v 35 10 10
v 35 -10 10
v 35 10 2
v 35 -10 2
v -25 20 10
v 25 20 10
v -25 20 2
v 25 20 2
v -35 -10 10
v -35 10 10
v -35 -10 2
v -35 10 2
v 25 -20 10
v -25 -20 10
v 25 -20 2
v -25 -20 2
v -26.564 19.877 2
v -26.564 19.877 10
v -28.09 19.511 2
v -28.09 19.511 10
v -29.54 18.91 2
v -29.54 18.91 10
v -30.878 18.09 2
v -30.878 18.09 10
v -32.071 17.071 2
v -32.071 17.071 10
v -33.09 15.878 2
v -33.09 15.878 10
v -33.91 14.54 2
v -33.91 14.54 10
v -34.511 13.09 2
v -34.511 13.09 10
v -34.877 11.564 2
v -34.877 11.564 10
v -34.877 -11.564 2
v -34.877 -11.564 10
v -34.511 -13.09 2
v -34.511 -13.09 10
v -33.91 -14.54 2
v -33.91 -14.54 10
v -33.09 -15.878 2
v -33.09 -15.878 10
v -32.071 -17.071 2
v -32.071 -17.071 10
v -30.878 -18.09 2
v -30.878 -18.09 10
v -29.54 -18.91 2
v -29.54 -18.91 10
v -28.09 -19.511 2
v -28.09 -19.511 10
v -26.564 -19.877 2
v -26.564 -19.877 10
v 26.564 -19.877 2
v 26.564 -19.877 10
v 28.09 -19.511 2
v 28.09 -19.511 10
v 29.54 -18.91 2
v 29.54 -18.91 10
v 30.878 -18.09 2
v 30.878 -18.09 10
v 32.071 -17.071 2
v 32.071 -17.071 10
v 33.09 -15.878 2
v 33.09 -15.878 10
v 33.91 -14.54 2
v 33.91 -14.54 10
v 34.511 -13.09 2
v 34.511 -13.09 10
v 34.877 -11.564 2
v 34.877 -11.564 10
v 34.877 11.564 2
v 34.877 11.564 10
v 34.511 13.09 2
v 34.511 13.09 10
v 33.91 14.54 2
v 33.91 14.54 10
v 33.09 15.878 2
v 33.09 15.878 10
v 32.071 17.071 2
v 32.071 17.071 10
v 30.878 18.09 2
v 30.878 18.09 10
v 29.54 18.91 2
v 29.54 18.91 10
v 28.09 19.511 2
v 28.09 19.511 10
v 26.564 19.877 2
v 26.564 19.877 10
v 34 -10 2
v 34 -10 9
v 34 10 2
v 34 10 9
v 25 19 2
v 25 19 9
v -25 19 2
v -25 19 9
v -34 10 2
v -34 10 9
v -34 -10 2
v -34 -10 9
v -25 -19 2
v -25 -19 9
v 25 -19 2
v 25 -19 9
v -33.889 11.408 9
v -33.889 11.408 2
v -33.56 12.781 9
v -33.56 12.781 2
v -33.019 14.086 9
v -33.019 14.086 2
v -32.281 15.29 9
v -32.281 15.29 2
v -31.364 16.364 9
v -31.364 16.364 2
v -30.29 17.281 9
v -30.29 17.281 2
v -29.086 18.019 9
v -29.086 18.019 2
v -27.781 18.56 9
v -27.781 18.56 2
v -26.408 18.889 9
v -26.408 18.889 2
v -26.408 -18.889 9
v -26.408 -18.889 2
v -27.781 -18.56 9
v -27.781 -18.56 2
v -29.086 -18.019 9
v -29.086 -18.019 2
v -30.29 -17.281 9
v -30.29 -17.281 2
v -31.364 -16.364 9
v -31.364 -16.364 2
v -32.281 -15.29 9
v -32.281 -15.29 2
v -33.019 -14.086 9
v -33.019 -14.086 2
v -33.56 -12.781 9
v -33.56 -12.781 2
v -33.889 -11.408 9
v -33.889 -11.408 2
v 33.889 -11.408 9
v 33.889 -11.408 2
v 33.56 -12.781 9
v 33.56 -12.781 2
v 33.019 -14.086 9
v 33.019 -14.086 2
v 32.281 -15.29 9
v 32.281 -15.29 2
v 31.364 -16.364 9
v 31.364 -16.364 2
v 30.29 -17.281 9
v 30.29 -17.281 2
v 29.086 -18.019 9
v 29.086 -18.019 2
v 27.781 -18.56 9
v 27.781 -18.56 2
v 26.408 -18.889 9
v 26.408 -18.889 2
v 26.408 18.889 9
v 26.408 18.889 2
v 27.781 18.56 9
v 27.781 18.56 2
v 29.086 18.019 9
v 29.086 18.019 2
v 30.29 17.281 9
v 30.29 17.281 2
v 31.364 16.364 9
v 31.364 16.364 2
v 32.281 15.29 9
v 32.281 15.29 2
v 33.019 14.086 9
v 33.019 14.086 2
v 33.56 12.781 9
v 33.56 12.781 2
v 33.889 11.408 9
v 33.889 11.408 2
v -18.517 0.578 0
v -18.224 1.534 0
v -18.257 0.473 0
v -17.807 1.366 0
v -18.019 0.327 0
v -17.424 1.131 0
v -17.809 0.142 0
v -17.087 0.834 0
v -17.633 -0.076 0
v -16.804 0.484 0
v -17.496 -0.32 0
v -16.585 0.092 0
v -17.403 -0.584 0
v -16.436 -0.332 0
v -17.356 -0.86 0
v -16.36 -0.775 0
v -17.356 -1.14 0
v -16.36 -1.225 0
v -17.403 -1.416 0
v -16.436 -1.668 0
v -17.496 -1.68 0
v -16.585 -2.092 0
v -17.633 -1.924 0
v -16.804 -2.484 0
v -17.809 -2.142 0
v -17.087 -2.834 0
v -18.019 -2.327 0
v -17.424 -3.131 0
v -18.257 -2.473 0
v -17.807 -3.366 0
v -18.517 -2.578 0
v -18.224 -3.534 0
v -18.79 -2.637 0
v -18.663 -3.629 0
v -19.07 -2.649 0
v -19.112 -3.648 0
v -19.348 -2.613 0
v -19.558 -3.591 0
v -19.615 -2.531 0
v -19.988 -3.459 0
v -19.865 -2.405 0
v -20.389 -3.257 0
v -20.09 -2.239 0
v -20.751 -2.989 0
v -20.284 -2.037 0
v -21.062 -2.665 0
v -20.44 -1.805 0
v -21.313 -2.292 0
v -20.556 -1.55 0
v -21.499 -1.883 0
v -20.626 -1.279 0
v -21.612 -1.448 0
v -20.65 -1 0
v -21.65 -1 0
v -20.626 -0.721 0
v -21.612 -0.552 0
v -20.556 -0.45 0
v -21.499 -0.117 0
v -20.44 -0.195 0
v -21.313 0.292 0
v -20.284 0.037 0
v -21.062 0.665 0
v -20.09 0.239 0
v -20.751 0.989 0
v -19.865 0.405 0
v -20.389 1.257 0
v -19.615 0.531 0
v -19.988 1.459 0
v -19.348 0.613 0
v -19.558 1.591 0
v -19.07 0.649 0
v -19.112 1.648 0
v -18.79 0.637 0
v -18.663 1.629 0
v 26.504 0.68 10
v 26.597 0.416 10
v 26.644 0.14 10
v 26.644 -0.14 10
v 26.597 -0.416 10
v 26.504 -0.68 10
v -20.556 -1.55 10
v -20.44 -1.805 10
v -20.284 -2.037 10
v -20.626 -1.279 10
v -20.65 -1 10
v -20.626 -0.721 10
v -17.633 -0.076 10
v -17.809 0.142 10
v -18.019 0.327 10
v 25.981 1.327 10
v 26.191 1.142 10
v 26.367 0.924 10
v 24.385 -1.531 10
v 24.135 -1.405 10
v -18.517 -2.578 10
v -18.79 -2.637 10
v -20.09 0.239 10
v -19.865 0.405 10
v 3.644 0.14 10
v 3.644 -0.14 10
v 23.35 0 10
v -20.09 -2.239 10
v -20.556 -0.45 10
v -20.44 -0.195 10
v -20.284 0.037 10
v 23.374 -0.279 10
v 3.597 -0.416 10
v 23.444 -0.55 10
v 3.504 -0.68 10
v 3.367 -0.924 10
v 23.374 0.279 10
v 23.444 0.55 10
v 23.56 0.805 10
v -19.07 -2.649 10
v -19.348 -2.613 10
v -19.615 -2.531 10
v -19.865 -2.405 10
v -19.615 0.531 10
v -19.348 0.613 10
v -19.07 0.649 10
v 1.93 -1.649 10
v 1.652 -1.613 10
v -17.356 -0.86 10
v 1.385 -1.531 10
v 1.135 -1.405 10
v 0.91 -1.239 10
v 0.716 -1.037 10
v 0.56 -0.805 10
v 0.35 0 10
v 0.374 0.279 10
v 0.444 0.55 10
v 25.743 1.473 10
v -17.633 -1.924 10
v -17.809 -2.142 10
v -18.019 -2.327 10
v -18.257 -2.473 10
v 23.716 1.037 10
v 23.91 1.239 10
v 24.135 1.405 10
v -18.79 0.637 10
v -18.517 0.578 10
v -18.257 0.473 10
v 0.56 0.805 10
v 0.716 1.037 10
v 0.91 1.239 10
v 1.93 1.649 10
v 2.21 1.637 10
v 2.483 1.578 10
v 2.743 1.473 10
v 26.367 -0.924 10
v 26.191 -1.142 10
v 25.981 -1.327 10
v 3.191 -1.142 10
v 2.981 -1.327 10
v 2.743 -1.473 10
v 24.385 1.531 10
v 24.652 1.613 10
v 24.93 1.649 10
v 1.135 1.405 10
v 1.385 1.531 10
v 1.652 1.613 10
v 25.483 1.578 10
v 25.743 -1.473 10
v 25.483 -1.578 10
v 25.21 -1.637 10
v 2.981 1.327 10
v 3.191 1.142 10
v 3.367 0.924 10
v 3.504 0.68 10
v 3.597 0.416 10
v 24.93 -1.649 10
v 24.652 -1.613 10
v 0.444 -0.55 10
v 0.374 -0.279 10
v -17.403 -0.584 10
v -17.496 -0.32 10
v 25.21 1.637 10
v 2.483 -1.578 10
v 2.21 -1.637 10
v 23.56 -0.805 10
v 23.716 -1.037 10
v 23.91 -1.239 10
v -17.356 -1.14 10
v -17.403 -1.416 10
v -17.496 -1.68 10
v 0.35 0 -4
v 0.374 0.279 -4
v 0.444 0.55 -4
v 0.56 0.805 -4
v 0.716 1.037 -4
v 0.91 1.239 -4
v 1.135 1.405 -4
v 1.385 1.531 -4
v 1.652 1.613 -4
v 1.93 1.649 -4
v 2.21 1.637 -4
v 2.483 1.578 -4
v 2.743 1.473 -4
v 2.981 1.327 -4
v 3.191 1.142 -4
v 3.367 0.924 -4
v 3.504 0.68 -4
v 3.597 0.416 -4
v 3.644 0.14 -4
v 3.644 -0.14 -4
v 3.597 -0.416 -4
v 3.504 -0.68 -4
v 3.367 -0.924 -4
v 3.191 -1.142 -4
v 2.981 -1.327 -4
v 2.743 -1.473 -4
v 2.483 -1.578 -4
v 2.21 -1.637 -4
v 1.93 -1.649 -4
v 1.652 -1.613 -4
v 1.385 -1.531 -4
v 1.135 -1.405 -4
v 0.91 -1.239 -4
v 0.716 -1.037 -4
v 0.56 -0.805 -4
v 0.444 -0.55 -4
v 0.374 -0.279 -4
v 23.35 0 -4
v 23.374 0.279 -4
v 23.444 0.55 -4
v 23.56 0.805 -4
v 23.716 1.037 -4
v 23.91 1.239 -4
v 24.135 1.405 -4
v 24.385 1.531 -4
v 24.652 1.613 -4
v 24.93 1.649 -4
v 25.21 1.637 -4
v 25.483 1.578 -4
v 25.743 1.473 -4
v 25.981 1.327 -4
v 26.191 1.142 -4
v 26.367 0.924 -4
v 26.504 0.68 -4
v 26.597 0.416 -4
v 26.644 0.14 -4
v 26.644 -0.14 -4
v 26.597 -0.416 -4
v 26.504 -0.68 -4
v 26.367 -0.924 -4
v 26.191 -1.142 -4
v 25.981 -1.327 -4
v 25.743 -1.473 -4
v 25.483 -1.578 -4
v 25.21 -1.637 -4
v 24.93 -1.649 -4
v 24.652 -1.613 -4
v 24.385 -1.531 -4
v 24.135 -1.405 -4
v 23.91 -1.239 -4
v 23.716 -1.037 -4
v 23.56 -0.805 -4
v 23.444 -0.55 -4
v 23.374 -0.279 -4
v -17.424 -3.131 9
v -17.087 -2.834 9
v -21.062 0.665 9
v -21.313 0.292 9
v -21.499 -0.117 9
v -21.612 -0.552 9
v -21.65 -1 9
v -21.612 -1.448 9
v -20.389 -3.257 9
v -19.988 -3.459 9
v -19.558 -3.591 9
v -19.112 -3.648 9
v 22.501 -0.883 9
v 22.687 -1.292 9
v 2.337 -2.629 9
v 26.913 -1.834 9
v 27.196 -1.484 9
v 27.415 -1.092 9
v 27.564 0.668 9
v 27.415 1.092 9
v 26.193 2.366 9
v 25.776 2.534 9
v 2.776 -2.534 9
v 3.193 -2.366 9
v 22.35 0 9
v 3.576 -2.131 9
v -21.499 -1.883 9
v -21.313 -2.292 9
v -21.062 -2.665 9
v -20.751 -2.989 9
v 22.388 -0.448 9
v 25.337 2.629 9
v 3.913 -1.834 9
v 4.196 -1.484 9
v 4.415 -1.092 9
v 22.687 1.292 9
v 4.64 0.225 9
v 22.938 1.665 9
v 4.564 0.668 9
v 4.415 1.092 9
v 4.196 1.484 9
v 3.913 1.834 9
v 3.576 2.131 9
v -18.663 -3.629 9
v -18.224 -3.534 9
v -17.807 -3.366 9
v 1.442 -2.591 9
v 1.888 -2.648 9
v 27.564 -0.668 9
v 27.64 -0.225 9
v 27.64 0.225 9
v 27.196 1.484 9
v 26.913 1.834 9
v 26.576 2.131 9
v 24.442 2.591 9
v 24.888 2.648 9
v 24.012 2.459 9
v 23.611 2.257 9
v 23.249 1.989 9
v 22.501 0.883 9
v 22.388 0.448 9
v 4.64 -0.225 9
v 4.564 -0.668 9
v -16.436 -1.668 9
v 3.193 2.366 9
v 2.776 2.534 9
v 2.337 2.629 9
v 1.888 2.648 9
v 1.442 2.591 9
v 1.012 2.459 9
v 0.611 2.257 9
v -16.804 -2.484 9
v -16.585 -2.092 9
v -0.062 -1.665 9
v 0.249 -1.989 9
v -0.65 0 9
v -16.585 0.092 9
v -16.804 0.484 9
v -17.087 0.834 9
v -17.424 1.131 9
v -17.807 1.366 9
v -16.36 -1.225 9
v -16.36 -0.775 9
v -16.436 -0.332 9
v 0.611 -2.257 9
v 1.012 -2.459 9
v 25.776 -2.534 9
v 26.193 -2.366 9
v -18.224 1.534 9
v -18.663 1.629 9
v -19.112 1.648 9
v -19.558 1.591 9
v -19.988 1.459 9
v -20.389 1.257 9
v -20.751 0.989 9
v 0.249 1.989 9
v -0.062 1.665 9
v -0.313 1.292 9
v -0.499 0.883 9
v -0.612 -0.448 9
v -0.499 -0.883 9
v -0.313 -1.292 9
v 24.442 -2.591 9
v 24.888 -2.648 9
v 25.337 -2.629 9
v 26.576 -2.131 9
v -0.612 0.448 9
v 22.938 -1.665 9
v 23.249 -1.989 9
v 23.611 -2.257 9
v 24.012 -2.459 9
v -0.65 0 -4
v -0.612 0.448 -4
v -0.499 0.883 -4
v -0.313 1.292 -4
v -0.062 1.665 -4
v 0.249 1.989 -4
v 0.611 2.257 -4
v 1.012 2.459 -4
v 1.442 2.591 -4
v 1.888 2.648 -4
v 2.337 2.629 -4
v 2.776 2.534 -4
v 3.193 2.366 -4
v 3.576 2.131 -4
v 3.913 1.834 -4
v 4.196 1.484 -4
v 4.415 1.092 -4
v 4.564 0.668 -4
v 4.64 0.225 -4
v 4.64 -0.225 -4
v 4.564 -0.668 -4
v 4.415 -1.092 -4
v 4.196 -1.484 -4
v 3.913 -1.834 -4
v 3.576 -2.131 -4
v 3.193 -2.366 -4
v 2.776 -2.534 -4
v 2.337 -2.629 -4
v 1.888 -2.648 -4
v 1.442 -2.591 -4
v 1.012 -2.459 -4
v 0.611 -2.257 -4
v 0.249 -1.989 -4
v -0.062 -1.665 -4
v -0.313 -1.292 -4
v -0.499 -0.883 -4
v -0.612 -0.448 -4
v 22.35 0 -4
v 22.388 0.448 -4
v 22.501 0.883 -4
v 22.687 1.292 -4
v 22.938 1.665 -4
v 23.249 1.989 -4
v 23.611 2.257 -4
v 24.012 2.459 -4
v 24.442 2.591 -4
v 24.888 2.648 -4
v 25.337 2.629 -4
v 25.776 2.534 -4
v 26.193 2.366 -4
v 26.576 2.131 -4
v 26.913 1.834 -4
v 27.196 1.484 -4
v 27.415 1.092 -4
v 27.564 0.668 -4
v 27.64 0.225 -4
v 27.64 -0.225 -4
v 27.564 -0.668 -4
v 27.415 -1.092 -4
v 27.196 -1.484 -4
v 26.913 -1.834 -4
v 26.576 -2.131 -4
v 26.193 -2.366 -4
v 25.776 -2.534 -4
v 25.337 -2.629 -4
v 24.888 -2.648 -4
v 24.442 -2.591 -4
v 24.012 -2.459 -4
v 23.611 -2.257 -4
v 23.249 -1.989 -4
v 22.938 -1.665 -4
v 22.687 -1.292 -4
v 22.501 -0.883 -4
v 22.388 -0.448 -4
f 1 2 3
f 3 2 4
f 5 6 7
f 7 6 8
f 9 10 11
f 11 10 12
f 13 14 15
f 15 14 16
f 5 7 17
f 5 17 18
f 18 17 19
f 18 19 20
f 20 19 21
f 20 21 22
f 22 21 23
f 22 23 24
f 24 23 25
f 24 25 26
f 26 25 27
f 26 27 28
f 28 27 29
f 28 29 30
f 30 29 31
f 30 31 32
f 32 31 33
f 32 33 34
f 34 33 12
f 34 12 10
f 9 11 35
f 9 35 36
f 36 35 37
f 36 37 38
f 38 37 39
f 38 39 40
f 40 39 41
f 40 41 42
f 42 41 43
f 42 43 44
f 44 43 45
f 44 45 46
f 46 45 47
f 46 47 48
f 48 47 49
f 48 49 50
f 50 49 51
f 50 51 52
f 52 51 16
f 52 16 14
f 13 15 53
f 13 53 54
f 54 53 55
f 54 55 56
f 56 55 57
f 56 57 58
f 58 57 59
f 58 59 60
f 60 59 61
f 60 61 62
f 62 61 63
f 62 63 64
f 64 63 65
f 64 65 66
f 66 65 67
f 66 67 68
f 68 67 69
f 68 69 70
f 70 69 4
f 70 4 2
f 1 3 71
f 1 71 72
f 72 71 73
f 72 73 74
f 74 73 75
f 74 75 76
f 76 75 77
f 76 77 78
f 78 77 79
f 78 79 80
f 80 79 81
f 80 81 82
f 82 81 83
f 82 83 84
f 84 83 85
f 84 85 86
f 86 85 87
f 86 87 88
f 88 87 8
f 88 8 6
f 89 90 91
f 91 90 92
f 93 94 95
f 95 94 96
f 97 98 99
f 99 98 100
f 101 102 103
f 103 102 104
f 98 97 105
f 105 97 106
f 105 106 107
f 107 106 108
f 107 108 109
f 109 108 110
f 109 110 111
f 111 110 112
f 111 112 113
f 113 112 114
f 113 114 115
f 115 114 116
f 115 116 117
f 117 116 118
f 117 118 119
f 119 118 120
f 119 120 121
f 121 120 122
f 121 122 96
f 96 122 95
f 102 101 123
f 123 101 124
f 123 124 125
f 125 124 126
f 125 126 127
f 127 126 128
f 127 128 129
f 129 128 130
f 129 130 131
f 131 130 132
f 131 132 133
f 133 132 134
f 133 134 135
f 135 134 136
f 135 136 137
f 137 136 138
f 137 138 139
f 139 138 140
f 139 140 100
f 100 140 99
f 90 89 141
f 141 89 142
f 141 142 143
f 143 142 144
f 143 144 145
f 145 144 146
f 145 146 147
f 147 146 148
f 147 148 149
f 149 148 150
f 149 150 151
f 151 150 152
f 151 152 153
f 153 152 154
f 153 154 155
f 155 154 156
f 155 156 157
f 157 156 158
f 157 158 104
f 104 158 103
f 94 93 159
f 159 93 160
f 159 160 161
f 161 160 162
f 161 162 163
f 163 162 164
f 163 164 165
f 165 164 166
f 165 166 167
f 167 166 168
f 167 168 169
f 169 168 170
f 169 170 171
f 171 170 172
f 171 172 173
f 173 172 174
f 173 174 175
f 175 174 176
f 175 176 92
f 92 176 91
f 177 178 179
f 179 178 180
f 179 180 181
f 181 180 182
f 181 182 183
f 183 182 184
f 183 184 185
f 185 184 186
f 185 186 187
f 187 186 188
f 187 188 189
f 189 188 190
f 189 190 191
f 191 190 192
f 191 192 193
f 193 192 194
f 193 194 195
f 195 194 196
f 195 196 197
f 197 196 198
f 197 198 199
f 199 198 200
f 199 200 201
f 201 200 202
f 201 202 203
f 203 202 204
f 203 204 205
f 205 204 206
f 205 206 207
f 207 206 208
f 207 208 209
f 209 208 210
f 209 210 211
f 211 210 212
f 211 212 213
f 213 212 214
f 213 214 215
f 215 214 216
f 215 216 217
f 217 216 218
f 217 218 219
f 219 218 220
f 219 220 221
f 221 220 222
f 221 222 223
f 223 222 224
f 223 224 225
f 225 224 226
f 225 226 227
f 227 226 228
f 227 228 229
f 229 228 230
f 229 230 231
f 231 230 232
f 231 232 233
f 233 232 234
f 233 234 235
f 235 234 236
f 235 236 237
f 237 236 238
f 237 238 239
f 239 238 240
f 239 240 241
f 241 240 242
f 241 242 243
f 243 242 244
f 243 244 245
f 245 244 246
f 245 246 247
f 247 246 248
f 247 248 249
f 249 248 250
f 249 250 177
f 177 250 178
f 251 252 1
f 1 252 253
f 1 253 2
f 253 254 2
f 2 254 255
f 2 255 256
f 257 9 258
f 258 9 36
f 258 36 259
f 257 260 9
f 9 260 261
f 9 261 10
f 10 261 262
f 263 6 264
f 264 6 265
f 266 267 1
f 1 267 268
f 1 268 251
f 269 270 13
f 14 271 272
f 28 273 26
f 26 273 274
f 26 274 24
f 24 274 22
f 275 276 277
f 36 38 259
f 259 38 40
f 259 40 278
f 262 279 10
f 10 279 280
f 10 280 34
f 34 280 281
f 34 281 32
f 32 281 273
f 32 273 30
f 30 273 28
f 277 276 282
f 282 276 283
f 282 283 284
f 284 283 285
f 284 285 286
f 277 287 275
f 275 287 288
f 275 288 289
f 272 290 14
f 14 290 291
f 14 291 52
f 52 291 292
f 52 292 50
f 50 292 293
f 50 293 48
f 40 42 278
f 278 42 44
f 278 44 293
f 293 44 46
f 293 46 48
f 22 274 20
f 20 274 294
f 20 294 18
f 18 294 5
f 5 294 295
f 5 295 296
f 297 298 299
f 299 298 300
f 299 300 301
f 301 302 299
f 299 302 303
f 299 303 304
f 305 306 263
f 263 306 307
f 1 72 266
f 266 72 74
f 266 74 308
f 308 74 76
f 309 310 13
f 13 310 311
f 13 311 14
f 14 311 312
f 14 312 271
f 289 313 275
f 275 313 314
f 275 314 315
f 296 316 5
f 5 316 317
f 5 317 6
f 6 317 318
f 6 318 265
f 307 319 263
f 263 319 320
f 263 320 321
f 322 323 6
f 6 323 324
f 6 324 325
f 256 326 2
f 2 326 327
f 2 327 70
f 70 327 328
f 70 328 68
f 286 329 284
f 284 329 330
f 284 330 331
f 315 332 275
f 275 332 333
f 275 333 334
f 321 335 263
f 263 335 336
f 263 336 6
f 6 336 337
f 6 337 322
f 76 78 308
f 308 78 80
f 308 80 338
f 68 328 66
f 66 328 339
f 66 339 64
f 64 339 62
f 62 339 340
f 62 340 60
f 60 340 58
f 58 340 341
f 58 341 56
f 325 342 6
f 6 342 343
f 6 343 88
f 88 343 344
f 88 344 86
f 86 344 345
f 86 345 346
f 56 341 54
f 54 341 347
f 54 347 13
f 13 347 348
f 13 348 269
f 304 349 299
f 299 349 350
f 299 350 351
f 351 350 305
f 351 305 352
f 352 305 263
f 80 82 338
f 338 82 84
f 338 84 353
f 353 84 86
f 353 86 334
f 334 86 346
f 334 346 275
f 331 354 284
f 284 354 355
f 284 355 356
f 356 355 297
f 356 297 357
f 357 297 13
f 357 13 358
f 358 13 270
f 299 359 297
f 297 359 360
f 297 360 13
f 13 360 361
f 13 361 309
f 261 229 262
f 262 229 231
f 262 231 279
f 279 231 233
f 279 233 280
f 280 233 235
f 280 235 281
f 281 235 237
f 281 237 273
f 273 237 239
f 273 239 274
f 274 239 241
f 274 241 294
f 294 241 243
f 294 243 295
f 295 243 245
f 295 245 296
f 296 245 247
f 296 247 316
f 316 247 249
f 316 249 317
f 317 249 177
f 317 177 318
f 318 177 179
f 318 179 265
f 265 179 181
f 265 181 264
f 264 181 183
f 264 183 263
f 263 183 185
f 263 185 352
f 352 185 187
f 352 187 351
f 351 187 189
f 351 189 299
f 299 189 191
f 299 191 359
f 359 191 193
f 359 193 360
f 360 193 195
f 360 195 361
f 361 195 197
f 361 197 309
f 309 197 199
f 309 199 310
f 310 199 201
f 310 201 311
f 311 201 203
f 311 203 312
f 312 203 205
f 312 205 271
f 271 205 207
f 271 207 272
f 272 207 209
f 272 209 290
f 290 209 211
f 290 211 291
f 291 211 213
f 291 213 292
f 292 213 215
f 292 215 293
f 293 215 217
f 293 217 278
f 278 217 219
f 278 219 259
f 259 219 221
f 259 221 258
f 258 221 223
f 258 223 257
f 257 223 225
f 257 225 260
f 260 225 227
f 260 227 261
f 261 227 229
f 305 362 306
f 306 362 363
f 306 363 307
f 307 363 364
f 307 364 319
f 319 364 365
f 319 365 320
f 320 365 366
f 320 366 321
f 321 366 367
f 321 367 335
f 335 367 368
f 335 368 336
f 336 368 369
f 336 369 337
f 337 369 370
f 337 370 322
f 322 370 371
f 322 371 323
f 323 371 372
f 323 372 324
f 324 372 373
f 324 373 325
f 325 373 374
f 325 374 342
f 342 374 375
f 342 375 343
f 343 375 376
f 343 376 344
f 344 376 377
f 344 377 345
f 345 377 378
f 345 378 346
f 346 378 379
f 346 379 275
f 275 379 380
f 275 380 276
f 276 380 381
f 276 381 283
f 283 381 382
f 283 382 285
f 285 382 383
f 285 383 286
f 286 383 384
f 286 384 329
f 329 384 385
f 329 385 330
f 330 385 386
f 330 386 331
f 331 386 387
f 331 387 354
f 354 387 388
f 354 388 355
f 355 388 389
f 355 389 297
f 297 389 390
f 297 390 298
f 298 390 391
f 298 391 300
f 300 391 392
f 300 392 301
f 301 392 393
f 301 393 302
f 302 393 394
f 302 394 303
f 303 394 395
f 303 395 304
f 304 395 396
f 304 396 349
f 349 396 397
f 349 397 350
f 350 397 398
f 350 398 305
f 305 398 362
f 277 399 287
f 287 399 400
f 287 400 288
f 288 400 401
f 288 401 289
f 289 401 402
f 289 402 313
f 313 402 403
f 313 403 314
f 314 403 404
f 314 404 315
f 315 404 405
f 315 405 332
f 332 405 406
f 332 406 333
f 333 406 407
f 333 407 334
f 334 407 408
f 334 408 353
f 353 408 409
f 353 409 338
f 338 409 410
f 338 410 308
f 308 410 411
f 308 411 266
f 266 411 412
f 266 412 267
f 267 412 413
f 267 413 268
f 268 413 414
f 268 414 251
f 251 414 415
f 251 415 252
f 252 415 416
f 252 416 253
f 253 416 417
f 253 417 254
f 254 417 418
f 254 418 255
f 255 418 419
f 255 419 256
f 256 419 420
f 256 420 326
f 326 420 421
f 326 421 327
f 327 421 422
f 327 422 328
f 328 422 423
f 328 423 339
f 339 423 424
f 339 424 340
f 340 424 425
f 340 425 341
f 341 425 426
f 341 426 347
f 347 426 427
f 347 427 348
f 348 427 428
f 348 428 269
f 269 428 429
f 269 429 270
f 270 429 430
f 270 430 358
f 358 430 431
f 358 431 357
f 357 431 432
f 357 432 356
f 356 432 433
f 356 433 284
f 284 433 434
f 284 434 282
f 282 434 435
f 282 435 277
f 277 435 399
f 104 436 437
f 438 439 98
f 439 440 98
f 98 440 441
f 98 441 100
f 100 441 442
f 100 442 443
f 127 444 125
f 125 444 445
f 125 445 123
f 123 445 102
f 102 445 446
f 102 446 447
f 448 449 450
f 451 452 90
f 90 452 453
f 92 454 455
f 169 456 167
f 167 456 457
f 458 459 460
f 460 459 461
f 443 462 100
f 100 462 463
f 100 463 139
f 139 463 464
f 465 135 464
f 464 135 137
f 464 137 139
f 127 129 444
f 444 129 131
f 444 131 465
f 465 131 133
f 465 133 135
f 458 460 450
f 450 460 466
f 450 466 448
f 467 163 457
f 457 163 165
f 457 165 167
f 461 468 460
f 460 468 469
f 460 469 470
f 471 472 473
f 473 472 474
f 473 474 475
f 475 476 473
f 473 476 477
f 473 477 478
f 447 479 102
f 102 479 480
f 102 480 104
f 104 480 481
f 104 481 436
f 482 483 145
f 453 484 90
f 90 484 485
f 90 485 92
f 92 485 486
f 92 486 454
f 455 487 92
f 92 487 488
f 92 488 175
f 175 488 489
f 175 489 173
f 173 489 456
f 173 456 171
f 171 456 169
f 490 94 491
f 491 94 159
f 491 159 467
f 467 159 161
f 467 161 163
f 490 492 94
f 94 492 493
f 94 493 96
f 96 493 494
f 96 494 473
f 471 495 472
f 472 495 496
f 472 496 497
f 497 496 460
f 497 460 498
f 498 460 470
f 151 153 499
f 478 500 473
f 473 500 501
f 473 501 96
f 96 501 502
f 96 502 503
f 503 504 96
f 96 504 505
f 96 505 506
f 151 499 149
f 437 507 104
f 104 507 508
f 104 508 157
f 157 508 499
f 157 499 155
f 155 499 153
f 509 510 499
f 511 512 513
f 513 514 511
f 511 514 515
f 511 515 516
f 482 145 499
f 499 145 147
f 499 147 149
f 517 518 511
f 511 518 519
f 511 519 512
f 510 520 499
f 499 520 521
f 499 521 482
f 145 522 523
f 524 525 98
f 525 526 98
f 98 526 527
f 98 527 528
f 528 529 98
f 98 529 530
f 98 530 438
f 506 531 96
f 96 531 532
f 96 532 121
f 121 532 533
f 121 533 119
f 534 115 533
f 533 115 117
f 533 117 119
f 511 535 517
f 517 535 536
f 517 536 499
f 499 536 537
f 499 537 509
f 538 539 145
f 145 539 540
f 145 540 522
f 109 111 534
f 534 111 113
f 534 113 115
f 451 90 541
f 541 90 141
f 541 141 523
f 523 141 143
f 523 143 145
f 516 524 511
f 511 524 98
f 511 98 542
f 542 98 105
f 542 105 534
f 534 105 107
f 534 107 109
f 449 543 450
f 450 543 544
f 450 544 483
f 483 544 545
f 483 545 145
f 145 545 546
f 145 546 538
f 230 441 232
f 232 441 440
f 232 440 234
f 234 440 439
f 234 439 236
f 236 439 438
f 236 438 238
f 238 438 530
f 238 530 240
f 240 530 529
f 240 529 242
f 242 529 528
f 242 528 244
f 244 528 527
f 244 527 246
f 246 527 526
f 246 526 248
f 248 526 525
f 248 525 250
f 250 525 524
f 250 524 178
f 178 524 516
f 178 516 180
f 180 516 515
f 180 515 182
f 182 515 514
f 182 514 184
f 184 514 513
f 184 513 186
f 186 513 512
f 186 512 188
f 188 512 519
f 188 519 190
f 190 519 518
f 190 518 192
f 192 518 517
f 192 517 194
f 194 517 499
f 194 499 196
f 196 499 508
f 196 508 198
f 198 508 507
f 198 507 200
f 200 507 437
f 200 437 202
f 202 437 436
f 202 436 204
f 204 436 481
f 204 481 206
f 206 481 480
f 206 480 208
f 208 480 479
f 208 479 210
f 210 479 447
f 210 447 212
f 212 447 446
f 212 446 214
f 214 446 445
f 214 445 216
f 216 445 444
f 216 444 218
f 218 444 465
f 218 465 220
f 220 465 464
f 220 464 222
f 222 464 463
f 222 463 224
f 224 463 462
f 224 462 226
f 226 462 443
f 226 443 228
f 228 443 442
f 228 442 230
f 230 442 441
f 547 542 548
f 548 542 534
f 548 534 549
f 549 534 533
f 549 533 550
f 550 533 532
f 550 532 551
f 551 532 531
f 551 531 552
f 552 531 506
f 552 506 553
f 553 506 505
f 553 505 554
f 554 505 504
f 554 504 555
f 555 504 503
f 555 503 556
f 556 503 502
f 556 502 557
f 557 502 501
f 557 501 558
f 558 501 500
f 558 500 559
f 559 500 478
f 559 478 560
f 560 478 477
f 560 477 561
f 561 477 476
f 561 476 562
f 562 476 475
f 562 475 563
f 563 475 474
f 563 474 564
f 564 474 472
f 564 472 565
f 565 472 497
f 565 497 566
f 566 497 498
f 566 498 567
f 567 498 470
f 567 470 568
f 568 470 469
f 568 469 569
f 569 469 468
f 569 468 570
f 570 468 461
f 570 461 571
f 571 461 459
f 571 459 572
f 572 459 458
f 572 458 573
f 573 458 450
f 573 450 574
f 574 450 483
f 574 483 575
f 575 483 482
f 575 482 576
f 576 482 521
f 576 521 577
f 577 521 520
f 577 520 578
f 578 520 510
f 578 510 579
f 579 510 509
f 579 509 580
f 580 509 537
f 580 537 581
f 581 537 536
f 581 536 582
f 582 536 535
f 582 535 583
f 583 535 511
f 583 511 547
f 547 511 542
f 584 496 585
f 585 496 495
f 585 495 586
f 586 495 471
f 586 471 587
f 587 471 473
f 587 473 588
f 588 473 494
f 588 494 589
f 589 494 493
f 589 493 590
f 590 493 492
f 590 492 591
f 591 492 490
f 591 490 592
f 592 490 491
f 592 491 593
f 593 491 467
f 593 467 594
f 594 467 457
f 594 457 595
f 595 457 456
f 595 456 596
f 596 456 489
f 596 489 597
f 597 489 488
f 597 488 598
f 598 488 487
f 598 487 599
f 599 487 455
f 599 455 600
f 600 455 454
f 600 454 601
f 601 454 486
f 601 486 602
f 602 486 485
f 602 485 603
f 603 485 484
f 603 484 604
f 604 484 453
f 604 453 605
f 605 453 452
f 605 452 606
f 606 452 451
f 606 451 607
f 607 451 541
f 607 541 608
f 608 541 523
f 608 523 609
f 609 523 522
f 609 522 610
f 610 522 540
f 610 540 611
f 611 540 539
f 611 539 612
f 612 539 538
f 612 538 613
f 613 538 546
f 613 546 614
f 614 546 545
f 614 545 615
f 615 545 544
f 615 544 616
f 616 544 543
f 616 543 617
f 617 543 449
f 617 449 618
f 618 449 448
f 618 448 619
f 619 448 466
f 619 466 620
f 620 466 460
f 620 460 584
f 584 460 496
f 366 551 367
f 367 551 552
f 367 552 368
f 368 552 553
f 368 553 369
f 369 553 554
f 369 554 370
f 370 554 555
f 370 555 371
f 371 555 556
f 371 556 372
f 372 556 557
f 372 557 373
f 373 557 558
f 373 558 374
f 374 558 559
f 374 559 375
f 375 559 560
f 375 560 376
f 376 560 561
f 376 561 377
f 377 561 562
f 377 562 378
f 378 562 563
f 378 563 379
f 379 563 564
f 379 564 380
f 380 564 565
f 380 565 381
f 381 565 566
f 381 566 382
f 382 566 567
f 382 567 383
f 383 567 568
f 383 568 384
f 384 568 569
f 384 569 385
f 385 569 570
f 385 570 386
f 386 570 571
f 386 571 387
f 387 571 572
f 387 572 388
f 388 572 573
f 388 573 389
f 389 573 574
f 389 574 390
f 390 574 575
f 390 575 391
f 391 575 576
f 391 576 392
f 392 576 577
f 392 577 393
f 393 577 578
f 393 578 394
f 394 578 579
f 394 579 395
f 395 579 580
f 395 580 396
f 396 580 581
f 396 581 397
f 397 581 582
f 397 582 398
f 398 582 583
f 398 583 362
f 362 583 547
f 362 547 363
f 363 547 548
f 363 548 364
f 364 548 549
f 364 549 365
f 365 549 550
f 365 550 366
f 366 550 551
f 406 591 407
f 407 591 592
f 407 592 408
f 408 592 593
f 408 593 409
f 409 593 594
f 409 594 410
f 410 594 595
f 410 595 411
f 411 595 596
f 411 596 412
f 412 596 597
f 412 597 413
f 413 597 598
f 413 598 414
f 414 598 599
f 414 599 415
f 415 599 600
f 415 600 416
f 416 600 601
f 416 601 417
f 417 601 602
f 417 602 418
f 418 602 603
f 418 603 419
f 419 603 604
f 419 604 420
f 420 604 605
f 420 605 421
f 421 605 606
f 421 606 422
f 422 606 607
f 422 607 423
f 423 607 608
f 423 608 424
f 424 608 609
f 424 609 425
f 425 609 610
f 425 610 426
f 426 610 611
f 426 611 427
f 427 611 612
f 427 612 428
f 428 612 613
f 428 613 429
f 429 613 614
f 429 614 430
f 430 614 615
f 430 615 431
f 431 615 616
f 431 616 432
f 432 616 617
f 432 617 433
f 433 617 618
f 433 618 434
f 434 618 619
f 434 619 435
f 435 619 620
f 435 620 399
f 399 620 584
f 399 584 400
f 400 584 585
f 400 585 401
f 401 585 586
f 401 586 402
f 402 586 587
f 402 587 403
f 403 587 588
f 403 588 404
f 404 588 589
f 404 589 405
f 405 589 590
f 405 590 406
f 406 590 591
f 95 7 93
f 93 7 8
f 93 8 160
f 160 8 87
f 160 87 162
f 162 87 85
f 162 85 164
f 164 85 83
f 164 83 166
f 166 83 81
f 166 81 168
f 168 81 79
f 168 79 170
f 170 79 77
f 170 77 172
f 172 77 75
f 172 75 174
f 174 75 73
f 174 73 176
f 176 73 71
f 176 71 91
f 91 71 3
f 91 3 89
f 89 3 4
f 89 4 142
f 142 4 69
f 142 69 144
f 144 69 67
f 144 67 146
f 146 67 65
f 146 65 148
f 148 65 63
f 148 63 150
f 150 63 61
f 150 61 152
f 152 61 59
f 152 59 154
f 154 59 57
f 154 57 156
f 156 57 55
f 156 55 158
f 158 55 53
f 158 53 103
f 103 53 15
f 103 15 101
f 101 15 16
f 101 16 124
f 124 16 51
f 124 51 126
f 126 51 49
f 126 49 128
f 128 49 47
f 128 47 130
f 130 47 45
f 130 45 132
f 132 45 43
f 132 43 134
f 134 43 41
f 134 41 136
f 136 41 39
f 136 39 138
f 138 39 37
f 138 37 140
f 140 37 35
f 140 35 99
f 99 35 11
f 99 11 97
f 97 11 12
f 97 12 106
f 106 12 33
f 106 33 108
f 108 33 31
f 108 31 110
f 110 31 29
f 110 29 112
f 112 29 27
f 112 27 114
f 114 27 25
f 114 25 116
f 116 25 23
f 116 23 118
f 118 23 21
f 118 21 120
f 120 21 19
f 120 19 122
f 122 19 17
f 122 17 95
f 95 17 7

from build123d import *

# Parameters (mm, degrees)
SKETCH1_W           = 70
SKETCH1_H           = 40
BOSS_EXTRUDE1_DEPTH = 10
SKETCH2_R           = 1.65
CUT_EXTRUDE1_DEPTH  = 11
FILLET1_R           = 10
SHELL2_T            = -1
SKETCH3_R           = 2.65
SKETCH3_R_2         = 1.65
BOSS_EXTRUDE2_DEPTH = 4
CUT_EXTRUDE2_DEPTH  = 2


with BuildPart() as part:
    # Sketch1 → Boss-Extrude1 (new body)
    with BuildSketch(Plane.XY):
        Rectangle(SKETCH1_W, SKETCH1_H)
    extrude(amount=BOSS_EXTRUDE1_DEPTH)

    # Sketch2 → Cut-Extrude1 (cut, through all)
    with BuildSketch(Plane(origin=(0, 0, 0), x_dir=(-1, 0, 0), z_dir=(0, 0, -1))):
        with Locations((-25, 0)):
            Circle(SKETCH2_R)
        with Locations((-2, 0)):
            Circle(SKETCH2_R)
        with Locations((19, -1)):
            Circle(SKETCH2_R)
    extrude(amount=-CUT_EXTRUDE1_DEPTH, mode=Mode.SUBTRACT)

    # Fillet1
    fillet1_edges = [part.edges().sort_by_distance(p)[0] for p in [
        (35, -20, 5),
        (-35, -20, 5),
        (-35, 20, 5),
        (35, 20, 5),
    ]]
    fillet(fillet1_edges, radius=FILLET1_R)

    # Shell2
    shell2_openings = [part.faces().sort_by_distance(p)[0] for p in [
        (23.35, 0, 0),
    ]]
    offset(amount=SHELL2_T, openings=shell2_openings, kind=Kind.INTERSECTION)

    # Sketch3 → Boss-Extrude2 (add)
    with BuildSketch(Plane(origin=(0, 0, 0), x_dir=(-1, 0, 0), z_dir=(0, 0, -1))):
        with Locations((-2, 0)):
            Circle(SKETCH3_R)
        with Locations((-2, 0)):
            Circle(SKETCH3_R_2, mode=Mode.SUBTRACT)
        with Locations((-25, 0)):
            Circle(SKETCH3_R)
        with Locations((-25, 0)):
            Circle(SKETCH3_R_2, mode=Mode.SUBTRACT)
    extrude(amount=BOSS_EXTRUDE2_DEPTH)

    # Sketch4 → Cut-Extrude2 (cut)
    with BuildSketch(Plane(origin=(0, 0, 0), x_dir=(-1, 0, 0), z_dir=(0, 0, -1))):
        with BuildLine():
            Line((35, -10), (35, 10))
            ThreePointArc((35, 10), (32.071067812, 17.071067812), (25, 20))
            Line((25, 20), (-25, 20))
            ThreePointArc((-25, 20), (-32.071067812, 17.071067812), (-35, 10))
            Line((-35, 10), (-35, -10))
            ThreePointArc((-35, -10), (-32.071067812, -17.071067812), (-25, -20))
            Line((-25, -20), (25, -20))
            ThreePointArc((25, -20), (32.071067812, -17.071067812), (35, -10))
        make_face()
        with BuildLine():
            Line((33, -10), (33, 10))
            ThreePointArc((33, 10), (30.656854249, 15.656854249), (25, 18))
            Line((25, 18), (-25, 18))
            ThreePointArc((-25, 18), (-30.656854249, 15.656854249), (-33, 10))
            Line((-33, 10), (-33, -10))
            ThreePointArc((-33, -10), (-30.656854249, -15.656854249), (-25, -18))
            Line((-25, -18), (25, -18))
            ThreePointArc((25, -18), (30.656854249, -15.656854249), (33, -10))
        make_face(mode=Mode.SUBTRACT)
    extrude(amount=-CUT_EXTRUDE2_DEPTH, mode=Mode.SUBTRACT)


solid = part.part
